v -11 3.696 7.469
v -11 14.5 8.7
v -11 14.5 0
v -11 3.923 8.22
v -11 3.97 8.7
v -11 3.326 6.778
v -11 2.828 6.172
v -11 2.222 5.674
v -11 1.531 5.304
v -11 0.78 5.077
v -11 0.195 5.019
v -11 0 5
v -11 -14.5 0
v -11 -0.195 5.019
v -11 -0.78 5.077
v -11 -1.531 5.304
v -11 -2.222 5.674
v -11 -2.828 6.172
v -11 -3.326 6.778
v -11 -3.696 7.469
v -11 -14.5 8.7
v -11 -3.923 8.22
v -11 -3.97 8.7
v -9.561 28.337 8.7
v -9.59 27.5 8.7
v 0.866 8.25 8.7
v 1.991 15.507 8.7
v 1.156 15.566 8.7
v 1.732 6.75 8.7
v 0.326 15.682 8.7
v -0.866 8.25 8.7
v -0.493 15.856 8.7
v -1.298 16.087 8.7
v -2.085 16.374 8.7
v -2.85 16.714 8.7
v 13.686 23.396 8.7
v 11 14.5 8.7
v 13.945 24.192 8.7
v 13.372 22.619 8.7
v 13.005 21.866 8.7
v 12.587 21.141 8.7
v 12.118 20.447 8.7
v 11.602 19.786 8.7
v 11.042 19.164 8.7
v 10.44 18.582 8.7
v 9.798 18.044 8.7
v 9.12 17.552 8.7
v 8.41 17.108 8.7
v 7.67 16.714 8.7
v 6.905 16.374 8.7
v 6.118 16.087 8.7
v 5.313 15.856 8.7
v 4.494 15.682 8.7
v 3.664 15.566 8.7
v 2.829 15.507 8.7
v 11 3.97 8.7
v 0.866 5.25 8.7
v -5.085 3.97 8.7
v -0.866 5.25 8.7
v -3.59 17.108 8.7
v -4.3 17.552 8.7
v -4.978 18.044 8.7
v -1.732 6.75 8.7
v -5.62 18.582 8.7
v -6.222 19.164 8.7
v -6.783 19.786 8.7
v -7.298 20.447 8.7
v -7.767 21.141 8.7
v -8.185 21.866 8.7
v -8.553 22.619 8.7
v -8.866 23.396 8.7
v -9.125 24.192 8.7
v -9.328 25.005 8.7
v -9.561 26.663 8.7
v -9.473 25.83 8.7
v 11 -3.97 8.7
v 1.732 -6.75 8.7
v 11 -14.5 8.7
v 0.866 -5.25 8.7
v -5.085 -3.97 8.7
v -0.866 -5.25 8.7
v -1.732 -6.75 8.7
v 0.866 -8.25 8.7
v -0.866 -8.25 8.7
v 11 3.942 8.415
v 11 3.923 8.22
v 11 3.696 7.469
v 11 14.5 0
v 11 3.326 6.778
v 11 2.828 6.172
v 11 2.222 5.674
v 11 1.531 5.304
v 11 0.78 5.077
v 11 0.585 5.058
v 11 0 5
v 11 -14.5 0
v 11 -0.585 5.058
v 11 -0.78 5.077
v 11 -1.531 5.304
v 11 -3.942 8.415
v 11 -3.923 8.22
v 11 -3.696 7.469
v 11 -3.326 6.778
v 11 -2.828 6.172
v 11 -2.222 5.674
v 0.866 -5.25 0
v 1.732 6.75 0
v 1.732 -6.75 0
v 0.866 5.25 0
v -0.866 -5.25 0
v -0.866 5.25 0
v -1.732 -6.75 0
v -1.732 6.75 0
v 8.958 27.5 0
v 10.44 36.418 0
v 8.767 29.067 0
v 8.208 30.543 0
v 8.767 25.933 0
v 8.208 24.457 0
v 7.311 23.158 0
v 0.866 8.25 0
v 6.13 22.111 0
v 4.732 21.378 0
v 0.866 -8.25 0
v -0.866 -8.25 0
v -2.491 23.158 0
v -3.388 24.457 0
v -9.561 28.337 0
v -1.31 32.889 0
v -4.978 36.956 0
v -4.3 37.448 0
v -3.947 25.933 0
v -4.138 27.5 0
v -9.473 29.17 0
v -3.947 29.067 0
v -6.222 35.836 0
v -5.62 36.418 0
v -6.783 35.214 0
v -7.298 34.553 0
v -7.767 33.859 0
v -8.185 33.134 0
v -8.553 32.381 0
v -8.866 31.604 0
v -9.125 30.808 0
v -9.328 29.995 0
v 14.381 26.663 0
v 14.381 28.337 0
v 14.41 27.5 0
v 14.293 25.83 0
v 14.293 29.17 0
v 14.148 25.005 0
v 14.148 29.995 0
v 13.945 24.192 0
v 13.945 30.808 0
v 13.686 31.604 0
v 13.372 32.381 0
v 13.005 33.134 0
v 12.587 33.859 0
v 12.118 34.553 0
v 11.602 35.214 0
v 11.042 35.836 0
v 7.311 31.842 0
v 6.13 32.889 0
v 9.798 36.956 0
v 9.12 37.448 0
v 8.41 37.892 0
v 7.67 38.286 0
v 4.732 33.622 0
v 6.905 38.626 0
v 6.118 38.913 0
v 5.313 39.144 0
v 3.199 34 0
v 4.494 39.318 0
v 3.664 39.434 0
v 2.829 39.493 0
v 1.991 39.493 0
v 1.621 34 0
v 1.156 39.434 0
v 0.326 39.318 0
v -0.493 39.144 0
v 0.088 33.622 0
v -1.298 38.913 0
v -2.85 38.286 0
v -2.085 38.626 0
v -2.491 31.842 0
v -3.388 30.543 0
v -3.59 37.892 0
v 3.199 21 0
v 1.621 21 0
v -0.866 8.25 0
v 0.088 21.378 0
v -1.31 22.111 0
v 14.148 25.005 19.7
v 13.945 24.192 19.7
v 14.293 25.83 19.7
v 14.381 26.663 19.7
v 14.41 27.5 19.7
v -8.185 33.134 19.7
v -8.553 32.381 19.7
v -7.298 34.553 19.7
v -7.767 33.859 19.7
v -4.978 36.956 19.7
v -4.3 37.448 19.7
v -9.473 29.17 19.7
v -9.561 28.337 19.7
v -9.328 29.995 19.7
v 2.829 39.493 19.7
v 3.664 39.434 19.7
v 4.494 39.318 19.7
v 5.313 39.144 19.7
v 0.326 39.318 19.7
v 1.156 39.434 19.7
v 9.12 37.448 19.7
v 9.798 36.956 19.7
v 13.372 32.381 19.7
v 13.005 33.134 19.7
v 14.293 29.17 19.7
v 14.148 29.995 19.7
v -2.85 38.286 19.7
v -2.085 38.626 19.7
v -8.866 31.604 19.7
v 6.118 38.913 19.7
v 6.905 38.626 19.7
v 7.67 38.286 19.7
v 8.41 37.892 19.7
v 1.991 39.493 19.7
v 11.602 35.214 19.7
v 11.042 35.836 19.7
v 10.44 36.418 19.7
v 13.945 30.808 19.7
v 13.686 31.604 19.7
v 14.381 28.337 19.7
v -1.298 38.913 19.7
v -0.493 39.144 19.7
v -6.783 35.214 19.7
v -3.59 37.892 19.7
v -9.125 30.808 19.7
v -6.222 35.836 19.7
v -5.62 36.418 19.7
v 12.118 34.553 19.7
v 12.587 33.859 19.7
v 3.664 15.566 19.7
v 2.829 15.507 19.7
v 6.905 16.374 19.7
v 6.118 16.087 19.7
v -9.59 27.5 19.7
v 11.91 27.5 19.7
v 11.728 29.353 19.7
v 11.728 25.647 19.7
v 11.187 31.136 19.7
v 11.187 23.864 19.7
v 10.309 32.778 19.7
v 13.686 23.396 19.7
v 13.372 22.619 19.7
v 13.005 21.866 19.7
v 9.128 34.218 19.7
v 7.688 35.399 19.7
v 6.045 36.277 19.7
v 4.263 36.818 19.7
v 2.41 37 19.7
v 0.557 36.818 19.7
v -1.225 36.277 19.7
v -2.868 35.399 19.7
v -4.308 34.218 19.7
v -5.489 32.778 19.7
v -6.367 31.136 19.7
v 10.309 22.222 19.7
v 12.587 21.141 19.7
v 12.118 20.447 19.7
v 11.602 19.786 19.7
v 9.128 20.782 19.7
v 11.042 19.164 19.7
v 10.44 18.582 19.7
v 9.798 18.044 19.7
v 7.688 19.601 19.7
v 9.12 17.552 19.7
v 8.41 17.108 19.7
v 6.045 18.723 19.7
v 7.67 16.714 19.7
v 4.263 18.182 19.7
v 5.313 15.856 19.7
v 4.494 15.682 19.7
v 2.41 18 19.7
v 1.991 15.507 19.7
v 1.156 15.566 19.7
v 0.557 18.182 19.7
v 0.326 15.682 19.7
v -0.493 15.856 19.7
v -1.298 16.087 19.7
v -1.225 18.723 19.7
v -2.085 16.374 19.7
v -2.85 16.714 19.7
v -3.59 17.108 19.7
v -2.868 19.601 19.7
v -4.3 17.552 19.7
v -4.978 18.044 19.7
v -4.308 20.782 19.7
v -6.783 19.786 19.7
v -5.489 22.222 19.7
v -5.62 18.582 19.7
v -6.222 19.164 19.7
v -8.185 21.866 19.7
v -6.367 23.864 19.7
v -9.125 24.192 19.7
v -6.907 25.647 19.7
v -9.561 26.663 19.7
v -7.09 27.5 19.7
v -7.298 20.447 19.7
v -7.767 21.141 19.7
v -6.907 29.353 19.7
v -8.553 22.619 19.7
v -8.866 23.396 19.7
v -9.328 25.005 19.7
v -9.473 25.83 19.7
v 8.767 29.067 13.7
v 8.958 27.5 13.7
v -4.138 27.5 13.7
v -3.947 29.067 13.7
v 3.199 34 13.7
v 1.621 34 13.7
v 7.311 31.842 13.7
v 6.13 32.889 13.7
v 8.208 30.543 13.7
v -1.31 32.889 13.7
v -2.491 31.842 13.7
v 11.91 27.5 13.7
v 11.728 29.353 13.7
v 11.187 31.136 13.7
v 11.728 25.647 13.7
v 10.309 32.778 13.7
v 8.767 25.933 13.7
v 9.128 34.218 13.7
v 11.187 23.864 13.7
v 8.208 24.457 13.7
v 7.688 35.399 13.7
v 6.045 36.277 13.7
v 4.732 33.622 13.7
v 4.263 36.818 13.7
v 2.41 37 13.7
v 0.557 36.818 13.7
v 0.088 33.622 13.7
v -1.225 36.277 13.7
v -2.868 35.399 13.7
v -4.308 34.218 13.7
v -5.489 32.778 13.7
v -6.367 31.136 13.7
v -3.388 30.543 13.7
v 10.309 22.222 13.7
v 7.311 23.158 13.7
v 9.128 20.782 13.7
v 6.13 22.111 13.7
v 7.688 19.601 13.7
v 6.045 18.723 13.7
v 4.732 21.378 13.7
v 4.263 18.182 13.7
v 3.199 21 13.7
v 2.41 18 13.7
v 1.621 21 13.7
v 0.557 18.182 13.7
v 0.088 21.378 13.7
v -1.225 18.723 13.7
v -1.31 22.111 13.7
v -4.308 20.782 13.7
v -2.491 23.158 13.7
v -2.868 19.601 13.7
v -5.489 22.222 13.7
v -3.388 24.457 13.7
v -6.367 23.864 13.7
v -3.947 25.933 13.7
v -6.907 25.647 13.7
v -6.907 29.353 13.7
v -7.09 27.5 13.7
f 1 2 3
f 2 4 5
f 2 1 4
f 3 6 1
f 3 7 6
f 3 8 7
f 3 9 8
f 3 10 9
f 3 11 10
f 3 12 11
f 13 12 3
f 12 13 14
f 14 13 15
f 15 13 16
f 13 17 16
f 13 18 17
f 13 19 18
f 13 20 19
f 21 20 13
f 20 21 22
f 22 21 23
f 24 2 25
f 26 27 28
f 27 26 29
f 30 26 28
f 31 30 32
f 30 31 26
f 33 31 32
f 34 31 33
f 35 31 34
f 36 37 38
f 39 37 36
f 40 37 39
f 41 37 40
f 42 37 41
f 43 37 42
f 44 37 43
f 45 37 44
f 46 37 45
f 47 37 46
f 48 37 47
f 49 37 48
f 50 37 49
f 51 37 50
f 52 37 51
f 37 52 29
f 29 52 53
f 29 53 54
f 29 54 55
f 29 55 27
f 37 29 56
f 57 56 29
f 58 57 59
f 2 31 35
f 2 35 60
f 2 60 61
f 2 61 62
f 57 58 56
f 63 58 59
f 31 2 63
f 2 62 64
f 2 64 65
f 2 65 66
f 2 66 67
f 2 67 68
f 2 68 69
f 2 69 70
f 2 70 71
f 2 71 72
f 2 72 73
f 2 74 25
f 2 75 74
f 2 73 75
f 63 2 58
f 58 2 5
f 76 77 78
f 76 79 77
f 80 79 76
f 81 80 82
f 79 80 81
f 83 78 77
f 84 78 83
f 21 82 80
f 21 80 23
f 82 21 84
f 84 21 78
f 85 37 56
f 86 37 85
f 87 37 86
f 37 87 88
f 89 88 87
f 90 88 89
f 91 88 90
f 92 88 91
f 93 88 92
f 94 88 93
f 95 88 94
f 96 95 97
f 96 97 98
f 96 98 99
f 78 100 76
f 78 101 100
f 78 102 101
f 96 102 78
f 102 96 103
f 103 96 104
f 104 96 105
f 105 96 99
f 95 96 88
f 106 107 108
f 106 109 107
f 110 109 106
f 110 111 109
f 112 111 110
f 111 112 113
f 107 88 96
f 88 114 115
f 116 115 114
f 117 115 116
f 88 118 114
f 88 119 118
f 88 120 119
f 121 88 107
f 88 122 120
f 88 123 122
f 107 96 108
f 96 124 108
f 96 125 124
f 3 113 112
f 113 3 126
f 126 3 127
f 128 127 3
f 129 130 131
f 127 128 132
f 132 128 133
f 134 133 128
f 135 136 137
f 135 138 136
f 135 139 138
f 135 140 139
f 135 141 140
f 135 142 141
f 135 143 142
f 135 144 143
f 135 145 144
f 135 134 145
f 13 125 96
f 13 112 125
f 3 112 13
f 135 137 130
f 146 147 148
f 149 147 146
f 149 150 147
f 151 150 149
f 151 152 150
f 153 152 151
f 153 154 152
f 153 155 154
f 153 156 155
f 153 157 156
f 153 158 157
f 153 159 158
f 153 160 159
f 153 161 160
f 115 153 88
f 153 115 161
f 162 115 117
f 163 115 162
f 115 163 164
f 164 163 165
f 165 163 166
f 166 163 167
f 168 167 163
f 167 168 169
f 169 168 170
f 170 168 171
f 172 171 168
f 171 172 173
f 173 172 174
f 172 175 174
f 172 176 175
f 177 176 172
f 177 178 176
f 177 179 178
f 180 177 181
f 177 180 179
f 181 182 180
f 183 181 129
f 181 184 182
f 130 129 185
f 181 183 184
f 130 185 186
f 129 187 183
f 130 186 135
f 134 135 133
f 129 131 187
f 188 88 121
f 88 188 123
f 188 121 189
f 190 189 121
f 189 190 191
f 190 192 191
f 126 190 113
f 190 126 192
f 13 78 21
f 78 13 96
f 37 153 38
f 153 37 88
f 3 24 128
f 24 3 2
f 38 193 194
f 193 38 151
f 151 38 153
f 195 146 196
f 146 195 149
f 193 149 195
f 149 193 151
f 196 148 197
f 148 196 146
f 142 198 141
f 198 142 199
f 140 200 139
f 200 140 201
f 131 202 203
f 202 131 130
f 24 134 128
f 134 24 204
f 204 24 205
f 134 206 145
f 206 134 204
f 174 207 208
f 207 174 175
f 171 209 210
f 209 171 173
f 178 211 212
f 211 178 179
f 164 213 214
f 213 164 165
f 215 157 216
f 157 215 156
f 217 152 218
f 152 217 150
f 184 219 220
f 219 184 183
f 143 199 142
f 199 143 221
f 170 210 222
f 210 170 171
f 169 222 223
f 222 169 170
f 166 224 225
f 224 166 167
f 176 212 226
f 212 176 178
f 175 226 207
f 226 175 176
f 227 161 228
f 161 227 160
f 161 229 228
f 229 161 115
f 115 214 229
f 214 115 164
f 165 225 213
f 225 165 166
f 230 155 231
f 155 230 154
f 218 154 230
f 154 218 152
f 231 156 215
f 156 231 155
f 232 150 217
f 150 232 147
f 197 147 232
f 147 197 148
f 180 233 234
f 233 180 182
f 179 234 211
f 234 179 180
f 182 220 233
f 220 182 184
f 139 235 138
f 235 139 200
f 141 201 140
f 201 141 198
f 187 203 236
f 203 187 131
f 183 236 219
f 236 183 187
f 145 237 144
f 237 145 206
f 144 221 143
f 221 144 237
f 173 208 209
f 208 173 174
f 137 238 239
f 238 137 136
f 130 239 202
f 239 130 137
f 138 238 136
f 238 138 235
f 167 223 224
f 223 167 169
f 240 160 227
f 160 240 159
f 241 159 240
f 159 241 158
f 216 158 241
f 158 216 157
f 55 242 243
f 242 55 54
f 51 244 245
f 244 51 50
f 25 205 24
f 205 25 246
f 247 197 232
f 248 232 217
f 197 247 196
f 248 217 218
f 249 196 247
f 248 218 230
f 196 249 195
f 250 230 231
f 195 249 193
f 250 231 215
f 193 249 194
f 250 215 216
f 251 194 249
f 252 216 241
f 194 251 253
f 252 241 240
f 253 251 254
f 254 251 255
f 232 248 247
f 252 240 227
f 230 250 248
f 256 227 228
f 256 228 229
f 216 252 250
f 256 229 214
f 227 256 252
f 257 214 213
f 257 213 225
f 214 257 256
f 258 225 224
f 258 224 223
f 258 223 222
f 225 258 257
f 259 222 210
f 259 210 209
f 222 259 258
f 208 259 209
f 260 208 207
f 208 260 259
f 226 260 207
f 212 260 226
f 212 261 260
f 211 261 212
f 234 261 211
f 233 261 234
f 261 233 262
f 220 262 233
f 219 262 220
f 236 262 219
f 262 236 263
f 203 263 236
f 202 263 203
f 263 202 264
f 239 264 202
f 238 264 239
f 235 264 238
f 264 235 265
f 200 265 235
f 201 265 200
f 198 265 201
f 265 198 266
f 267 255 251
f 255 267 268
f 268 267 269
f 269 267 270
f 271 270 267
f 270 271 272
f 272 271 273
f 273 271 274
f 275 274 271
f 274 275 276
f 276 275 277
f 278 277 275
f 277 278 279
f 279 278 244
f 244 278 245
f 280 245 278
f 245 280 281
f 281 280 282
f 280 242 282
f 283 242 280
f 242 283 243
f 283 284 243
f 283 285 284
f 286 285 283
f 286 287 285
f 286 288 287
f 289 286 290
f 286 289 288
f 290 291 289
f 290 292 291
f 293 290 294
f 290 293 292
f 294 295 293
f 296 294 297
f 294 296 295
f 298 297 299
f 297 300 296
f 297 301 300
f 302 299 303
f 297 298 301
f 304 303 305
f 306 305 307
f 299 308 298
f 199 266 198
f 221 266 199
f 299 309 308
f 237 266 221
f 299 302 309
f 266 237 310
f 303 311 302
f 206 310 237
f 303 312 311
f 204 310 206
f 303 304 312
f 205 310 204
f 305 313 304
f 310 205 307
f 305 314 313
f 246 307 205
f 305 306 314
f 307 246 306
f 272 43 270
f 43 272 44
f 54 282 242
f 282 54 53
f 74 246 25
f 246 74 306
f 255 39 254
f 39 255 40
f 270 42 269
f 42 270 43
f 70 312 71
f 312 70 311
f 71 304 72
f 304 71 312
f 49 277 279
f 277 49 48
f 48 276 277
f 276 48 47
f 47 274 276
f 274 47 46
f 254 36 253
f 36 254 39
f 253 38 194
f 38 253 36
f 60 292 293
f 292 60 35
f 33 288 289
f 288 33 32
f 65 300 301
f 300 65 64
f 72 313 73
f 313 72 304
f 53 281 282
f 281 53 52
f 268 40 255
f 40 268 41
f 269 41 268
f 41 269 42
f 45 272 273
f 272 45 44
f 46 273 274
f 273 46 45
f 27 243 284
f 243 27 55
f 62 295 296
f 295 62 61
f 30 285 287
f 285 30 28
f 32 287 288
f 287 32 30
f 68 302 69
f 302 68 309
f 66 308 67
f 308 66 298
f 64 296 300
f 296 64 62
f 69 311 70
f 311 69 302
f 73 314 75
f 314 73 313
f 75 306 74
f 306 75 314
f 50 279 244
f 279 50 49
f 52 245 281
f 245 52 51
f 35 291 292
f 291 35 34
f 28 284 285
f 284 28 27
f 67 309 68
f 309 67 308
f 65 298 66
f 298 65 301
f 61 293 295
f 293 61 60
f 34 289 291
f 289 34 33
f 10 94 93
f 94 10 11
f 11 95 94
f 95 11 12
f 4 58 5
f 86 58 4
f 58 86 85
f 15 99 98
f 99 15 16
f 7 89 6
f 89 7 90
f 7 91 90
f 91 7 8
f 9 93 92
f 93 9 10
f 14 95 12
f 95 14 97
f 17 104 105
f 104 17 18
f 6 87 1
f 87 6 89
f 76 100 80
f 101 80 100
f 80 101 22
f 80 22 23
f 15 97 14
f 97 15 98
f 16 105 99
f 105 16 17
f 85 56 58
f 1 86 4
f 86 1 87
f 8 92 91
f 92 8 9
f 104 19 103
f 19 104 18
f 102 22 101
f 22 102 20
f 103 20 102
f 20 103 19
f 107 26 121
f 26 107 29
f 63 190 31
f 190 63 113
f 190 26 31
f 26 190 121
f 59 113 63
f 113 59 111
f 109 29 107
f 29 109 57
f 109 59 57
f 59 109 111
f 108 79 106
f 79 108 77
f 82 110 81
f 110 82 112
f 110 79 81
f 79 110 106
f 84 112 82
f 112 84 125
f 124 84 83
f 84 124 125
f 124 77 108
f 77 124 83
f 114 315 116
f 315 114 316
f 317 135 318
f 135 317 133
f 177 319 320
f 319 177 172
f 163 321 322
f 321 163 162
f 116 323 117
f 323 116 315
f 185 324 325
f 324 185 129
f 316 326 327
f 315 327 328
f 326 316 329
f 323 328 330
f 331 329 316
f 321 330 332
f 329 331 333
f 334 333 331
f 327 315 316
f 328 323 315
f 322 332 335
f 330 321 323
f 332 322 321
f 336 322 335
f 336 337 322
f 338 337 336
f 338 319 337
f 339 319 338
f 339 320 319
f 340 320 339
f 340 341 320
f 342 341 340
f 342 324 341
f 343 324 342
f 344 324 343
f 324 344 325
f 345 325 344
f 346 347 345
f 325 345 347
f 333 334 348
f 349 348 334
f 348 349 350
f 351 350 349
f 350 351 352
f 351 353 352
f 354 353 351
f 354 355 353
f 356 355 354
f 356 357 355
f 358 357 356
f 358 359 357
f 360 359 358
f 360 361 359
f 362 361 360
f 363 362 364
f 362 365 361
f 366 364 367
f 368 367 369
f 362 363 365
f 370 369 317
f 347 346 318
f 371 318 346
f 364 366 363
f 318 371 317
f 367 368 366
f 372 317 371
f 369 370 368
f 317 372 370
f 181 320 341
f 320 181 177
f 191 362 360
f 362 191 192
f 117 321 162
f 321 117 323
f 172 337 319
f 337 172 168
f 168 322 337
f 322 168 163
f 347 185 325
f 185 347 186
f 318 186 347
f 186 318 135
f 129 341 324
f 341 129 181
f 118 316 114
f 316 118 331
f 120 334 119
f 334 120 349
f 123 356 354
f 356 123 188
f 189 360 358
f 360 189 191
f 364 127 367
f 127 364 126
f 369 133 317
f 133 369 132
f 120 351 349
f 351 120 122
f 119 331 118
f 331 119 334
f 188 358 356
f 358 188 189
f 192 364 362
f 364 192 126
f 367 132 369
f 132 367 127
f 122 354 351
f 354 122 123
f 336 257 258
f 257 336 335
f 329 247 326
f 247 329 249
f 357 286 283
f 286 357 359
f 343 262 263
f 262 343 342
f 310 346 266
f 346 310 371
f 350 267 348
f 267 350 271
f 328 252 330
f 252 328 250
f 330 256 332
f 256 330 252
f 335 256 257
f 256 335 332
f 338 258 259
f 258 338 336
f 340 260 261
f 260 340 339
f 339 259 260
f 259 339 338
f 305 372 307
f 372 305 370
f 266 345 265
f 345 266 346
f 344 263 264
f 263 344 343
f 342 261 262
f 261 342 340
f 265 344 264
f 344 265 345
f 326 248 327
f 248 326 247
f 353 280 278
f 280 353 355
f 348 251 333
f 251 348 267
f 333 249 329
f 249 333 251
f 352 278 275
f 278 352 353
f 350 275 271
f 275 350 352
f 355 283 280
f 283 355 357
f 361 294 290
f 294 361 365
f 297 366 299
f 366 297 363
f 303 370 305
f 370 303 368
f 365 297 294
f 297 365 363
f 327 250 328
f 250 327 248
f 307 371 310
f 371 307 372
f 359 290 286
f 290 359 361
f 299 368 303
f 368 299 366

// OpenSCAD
// file: ../../polyhole.scad
// The Cylinder is dead! Long live the Cylinder!
// A module for a polyhole by radius, based on Nophead's work.

module polyhole(h, r, cent = false)
{
    n = max(round(4 * r), 3);
    cylinder(h = h, r = r / cos(180 / n), $fn = n, center = cent);
}
// main file
// XY Idler End

use<../../polyhole.scad>

GantryIdlerEnd();

module GantryIdlerEnd()
{
    heig = 5+19+5; //distance of bearing assembly and 5mm of platic on each side.
    widt = 25-3; //should be greater than (42.3+2+5)-(42.3/2+12.22/2+0.63+5).
    
    difference()
    {
        union()
        {
            translate([0, 0, (5+3.7)/2])
                cube([widt, heig, 5+3.7], center = true);
            hull()
            {
                translate([-widt/4, heig/2-1, (5+3.7)/2])
                    cube([widt/2, 2, 5+3.7], center = true);
                translate([widt/4, heig/2+1, (5+3.7)/2])
                    cube([widt/2, 2, 5+3.7], center = true);
                translate([-widt/2-3+(42.3+2+5)-(42.3/2+12.22/2+0.63+5), heig/2+1+19/2+2.5, 0])
                    cylinder(h = 5+3.7, r = 19/2+2.5, $fn = 90);
            }
            translate([-widt/2-3+((42.3+2+5)-(42.3/2+12.22/2+0.63+5)), heig/2+1+19/2+2.5, 0])
                cylinder(h = 5+3.7+5+6, r = 19/2+2.5, $fn = 90);
        }
        translate([0, 0, 5+4])
            rotate([0, 90, 0])
                cylinder(h = widt*2, r = 4, center = true, $fn = 32);
        translate([0, (19/2-5.5/2), 0])
            polyhole(h = 5+3.7, r = 1.5);
        translate([0, -(19/2-5.5/2), 0])
            polyhole(h = 5+3.7, r = 1.5);
        translate([-widt/2-3+((42.3+2+5)-(42.3/2+12.22/2+0.63+5)), heig/2+1+19/2+2.5, 0])
            polyhole(h = 5+3.7+5, r = 6.5);
        translate([-widt/2-3+((42.3+2+5)-(42.3/2+12.22/2+0.63+5)), heig/2+1+19/2+2.5, 5+3.7+5])
            cylinder(h = 5+3.7+5, r = 19/2, $fn = 32);
    }
}
